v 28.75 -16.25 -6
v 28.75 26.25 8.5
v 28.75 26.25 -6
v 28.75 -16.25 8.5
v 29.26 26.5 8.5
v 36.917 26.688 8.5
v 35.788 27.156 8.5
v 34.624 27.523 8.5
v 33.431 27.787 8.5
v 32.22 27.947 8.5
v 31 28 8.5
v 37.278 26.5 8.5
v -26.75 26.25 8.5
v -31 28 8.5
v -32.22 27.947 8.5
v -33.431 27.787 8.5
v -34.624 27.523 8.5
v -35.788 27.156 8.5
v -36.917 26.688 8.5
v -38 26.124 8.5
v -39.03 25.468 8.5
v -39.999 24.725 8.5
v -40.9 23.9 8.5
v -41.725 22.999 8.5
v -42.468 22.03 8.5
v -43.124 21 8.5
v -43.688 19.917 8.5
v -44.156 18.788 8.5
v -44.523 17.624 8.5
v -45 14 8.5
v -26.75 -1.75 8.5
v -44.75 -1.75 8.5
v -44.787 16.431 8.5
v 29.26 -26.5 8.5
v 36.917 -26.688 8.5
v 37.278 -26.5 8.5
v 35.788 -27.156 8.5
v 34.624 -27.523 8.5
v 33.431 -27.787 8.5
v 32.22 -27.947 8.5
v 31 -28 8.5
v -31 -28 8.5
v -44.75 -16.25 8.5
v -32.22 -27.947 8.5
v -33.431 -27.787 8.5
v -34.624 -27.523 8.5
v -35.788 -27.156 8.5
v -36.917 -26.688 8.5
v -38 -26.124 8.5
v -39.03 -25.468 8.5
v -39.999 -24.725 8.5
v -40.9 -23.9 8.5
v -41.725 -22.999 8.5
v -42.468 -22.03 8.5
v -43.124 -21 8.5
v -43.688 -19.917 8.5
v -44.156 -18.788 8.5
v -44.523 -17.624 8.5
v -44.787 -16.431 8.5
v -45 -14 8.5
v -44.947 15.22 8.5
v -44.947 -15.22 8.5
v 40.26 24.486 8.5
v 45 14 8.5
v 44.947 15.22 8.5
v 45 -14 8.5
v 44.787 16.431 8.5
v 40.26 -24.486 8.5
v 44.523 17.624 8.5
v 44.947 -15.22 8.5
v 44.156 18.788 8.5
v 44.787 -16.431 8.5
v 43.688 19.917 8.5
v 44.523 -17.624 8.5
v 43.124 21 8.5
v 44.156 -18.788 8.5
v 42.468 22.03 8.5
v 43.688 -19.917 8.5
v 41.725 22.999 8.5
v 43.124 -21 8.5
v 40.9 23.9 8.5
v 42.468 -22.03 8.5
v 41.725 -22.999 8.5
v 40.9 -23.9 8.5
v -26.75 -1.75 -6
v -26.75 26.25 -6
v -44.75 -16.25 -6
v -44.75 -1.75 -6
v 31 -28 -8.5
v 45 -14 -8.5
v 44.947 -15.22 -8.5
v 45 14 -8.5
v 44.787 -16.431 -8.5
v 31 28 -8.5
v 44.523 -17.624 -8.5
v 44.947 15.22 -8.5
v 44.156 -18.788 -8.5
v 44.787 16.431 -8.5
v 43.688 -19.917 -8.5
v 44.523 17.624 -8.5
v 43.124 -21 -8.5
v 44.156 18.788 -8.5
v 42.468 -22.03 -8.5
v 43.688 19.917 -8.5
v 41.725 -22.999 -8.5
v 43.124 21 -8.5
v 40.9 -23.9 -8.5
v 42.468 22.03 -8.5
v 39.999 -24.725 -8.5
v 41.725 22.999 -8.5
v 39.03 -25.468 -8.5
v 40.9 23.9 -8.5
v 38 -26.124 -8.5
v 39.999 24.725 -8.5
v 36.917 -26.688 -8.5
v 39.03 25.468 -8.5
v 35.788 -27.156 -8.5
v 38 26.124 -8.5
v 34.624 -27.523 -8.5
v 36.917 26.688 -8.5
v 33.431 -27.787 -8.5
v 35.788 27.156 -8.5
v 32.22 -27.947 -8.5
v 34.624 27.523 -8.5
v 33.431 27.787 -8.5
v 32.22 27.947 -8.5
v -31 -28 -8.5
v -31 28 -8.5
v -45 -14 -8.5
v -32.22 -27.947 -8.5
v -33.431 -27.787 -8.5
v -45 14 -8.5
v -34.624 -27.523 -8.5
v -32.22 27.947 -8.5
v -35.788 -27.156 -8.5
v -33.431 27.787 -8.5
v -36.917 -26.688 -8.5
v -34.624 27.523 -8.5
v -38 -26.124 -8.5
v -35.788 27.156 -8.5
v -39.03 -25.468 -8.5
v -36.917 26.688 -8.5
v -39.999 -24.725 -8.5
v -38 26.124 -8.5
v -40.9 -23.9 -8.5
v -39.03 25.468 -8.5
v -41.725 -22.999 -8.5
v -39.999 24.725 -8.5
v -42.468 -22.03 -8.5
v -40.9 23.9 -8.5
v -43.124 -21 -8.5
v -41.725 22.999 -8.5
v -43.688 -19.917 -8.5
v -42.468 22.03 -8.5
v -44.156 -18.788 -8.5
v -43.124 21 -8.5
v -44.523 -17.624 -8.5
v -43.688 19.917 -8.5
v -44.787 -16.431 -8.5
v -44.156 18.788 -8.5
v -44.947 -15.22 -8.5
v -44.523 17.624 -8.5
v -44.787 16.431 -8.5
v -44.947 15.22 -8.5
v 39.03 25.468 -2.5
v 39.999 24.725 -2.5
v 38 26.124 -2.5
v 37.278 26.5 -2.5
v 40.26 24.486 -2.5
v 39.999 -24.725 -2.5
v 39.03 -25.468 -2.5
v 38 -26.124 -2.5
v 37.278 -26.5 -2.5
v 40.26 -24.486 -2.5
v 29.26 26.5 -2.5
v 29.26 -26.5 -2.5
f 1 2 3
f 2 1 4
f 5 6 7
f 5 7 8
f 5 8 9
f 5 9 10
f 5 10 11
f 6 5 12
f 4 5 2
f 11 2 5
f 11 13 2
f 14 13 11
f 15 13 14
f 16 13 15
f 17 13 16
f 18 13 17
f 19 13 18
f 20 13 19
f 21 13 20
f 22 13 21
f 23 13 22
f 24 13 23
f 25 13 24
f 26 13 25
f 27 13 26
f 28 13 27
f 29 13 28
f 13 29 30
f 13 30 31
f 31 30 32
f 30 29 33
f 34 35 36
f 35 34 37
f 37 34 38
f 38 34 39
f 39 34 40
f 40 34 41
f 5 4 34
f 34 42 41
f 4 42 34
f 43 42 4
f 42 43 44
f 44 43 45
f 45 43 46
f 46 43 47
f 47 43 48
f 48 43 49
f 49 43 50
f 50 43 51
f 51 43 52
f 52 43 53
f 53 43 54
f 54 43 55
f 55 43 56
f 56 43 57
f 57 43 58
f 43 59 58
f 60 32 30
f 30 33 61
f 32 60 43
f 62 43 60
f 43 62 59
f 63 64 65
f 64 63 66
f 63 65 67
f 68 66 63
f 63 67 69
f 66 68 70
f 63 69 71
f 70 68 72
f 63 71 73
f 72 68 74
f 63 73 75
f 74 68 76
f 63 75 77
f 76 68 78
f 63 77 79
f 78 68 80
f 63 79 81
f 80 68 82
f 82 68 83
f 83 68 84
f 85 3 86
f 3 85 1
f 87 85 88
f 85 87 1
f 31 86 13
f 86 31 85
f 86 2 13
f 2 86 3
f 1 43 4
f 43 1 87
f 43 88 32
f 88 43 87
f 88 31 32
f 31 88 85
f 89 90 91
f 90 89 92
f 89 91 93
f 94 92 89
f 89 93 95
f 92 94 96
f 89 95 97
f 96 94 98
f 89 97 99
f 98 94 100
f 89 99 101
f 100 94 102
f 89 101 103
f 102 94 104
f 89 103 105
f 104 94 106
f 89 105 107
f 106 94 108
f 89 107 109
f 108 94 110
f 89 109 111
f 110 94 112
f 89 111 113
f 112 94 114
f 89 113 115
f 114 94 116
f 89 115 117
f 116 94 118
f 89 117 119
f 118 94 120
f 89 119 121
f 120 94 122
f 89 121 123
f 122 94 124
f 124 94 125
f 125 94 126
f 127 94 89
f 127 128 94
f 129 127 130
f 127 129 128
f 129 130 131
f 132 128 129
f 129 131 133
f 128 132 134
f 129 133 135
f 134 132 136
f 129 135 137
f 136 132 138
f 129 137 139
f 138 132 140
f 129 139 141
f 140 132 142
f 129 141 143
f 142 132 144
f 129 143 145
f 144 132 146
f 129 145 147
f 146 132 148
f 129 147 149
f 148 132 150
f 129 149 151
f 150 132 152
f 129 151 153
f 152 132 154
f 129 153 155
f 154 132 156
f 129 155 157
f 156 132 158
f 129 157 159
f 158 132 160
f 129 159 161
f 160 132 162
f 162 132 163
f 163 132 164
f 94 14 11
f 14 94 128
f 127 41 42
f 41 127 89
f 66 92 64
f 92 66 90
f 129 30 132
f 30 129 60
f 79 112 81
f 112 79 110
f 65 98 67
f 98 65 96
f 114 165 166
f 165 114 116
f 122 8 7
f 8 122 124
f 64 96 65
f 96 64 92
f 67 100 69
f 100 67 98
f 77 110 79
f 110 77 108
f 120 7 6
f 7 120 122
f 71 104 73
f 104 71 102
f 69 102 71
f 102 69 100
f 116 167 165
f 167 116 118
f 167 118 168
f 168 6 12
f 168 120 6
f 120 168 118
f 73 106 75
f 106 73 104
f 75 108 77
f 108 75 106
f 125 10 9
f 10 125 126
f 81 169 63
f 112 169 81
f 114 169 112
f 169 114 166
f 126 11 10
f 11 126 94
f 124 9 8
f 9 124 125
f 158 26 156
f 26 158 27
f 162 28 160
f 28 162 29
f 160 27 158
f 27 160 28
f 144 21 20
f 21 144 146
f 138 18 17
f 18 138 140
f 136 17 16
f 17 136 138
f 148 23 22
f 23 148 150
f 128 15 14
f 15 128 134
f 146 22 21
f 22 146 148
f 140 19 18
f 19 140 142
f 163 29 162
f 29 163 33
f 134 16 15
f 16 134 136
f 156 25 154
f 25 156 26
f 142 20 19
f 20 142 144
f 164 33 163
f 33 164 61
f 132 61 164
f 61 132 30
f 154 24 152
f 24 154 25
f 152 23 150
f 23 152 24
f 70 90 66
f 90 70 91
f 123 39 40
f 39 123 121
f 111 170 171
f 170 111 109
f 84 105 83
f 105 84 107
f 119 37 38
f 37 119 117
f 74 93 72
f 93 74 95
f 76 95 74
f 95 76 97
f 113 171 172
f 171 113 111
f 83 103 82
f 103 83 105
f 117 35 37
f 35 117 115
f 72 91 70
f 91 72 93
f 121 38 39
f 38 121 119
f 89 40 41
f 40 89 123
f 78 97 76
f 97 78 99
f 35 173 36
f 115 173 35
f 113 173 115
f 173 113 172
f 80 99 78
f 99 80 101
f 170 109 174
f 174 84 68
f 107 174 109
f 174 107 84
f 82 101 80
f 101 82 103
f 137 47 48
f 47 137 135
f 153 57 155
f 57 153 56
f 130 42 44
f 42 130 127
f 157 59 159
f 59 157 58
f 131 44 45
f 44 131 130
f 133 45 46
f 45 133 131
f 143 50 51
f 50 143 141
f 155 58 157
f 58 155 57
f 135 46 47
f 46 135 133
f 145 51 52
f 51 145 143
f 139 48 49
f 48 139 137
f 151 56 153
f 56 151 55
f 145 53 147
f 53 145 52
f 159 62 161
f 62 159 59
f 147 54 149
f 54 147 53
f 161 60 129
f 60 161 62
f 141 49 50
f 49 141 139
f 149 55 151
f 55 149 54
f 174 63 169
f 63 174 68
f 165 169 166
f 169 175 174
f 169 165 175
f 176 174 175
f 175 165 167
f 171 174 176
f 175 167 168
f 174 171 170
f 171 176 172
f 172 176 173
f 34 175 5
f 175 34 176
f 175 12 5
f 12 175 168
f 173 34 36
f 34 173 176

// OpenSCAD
// Altoid tin base inner dimensions
tinx = 90;
tiny = 56;
tinz = 17;
tincorner = 14;

// Lucy dimensions, with cartridge installed
// the 0.5 is for extra clearance

stubx = 18;
stuby = 14.5;
lucyx = 55.5;
lucyy = 42.5;
lucyz = stuby;  // real size is 9, we use the maximum size for the hole

// refill cartridge dimensions
cartlen = 53;
cartd   = 11;

// Amount to shift everything to center it up
xshift = 1;
yshift = 5;

// Size of the wall between Lucy and the spare cartridge
sepwall = 0.51;

$fn = 72;

module tin() {
    cube([tinx - (2*tincorner), tiny, tinz], center=true);
    cube([tinx, tiny - (2*tincorner), tinz], center=true);
    translate([(tinx-(2*tincorner))/2, (tiny-(2*tincorner))/2, 0]){
        cylinder(h=tinz, r=tincorner, center=true);
    }
    translate([-(tinx-(2*tincorner))/2, (tiny-(2*tincorner))/2, 0]){
        cylinder(h=tinz, r=tincorner, center=true);
    }
    translate([(tinx-(2*tincorner))/2, -(tiny-(2*tincorner))/2, 0]){
        cylinder(h=tinz, r=tincorner, center=true);
    }
    translate([-(tinx-(tincorner*2))/2, -(tiny-(tincorner*2))/2, 0]){
        cylinder(h=tinz, r=tincorner, center=true);
    }
}

module lucy() {
    cube([lucyx, lucyy, lucyz], center=true);
    translate([-(lucyx + stubx)/2,-(lucyy - stuby)/2,0]){
        cube([stubx, stuby, stuby], center=true);
    }
}

module cartridge() {
    cube([cartd, cartlen, cartd], center=true);
}


difference() {
    tin();
    
    translate([xshift, yshift, (tinz - lucyz)/2]){
        lucy();
    }
    translate([xshift, 0, (tinz - cartd)/2]){
        translate ([sepwall + ((lucyx + cartd)/2), 0, 0]) {
            cartridge();
        }
    }
}
